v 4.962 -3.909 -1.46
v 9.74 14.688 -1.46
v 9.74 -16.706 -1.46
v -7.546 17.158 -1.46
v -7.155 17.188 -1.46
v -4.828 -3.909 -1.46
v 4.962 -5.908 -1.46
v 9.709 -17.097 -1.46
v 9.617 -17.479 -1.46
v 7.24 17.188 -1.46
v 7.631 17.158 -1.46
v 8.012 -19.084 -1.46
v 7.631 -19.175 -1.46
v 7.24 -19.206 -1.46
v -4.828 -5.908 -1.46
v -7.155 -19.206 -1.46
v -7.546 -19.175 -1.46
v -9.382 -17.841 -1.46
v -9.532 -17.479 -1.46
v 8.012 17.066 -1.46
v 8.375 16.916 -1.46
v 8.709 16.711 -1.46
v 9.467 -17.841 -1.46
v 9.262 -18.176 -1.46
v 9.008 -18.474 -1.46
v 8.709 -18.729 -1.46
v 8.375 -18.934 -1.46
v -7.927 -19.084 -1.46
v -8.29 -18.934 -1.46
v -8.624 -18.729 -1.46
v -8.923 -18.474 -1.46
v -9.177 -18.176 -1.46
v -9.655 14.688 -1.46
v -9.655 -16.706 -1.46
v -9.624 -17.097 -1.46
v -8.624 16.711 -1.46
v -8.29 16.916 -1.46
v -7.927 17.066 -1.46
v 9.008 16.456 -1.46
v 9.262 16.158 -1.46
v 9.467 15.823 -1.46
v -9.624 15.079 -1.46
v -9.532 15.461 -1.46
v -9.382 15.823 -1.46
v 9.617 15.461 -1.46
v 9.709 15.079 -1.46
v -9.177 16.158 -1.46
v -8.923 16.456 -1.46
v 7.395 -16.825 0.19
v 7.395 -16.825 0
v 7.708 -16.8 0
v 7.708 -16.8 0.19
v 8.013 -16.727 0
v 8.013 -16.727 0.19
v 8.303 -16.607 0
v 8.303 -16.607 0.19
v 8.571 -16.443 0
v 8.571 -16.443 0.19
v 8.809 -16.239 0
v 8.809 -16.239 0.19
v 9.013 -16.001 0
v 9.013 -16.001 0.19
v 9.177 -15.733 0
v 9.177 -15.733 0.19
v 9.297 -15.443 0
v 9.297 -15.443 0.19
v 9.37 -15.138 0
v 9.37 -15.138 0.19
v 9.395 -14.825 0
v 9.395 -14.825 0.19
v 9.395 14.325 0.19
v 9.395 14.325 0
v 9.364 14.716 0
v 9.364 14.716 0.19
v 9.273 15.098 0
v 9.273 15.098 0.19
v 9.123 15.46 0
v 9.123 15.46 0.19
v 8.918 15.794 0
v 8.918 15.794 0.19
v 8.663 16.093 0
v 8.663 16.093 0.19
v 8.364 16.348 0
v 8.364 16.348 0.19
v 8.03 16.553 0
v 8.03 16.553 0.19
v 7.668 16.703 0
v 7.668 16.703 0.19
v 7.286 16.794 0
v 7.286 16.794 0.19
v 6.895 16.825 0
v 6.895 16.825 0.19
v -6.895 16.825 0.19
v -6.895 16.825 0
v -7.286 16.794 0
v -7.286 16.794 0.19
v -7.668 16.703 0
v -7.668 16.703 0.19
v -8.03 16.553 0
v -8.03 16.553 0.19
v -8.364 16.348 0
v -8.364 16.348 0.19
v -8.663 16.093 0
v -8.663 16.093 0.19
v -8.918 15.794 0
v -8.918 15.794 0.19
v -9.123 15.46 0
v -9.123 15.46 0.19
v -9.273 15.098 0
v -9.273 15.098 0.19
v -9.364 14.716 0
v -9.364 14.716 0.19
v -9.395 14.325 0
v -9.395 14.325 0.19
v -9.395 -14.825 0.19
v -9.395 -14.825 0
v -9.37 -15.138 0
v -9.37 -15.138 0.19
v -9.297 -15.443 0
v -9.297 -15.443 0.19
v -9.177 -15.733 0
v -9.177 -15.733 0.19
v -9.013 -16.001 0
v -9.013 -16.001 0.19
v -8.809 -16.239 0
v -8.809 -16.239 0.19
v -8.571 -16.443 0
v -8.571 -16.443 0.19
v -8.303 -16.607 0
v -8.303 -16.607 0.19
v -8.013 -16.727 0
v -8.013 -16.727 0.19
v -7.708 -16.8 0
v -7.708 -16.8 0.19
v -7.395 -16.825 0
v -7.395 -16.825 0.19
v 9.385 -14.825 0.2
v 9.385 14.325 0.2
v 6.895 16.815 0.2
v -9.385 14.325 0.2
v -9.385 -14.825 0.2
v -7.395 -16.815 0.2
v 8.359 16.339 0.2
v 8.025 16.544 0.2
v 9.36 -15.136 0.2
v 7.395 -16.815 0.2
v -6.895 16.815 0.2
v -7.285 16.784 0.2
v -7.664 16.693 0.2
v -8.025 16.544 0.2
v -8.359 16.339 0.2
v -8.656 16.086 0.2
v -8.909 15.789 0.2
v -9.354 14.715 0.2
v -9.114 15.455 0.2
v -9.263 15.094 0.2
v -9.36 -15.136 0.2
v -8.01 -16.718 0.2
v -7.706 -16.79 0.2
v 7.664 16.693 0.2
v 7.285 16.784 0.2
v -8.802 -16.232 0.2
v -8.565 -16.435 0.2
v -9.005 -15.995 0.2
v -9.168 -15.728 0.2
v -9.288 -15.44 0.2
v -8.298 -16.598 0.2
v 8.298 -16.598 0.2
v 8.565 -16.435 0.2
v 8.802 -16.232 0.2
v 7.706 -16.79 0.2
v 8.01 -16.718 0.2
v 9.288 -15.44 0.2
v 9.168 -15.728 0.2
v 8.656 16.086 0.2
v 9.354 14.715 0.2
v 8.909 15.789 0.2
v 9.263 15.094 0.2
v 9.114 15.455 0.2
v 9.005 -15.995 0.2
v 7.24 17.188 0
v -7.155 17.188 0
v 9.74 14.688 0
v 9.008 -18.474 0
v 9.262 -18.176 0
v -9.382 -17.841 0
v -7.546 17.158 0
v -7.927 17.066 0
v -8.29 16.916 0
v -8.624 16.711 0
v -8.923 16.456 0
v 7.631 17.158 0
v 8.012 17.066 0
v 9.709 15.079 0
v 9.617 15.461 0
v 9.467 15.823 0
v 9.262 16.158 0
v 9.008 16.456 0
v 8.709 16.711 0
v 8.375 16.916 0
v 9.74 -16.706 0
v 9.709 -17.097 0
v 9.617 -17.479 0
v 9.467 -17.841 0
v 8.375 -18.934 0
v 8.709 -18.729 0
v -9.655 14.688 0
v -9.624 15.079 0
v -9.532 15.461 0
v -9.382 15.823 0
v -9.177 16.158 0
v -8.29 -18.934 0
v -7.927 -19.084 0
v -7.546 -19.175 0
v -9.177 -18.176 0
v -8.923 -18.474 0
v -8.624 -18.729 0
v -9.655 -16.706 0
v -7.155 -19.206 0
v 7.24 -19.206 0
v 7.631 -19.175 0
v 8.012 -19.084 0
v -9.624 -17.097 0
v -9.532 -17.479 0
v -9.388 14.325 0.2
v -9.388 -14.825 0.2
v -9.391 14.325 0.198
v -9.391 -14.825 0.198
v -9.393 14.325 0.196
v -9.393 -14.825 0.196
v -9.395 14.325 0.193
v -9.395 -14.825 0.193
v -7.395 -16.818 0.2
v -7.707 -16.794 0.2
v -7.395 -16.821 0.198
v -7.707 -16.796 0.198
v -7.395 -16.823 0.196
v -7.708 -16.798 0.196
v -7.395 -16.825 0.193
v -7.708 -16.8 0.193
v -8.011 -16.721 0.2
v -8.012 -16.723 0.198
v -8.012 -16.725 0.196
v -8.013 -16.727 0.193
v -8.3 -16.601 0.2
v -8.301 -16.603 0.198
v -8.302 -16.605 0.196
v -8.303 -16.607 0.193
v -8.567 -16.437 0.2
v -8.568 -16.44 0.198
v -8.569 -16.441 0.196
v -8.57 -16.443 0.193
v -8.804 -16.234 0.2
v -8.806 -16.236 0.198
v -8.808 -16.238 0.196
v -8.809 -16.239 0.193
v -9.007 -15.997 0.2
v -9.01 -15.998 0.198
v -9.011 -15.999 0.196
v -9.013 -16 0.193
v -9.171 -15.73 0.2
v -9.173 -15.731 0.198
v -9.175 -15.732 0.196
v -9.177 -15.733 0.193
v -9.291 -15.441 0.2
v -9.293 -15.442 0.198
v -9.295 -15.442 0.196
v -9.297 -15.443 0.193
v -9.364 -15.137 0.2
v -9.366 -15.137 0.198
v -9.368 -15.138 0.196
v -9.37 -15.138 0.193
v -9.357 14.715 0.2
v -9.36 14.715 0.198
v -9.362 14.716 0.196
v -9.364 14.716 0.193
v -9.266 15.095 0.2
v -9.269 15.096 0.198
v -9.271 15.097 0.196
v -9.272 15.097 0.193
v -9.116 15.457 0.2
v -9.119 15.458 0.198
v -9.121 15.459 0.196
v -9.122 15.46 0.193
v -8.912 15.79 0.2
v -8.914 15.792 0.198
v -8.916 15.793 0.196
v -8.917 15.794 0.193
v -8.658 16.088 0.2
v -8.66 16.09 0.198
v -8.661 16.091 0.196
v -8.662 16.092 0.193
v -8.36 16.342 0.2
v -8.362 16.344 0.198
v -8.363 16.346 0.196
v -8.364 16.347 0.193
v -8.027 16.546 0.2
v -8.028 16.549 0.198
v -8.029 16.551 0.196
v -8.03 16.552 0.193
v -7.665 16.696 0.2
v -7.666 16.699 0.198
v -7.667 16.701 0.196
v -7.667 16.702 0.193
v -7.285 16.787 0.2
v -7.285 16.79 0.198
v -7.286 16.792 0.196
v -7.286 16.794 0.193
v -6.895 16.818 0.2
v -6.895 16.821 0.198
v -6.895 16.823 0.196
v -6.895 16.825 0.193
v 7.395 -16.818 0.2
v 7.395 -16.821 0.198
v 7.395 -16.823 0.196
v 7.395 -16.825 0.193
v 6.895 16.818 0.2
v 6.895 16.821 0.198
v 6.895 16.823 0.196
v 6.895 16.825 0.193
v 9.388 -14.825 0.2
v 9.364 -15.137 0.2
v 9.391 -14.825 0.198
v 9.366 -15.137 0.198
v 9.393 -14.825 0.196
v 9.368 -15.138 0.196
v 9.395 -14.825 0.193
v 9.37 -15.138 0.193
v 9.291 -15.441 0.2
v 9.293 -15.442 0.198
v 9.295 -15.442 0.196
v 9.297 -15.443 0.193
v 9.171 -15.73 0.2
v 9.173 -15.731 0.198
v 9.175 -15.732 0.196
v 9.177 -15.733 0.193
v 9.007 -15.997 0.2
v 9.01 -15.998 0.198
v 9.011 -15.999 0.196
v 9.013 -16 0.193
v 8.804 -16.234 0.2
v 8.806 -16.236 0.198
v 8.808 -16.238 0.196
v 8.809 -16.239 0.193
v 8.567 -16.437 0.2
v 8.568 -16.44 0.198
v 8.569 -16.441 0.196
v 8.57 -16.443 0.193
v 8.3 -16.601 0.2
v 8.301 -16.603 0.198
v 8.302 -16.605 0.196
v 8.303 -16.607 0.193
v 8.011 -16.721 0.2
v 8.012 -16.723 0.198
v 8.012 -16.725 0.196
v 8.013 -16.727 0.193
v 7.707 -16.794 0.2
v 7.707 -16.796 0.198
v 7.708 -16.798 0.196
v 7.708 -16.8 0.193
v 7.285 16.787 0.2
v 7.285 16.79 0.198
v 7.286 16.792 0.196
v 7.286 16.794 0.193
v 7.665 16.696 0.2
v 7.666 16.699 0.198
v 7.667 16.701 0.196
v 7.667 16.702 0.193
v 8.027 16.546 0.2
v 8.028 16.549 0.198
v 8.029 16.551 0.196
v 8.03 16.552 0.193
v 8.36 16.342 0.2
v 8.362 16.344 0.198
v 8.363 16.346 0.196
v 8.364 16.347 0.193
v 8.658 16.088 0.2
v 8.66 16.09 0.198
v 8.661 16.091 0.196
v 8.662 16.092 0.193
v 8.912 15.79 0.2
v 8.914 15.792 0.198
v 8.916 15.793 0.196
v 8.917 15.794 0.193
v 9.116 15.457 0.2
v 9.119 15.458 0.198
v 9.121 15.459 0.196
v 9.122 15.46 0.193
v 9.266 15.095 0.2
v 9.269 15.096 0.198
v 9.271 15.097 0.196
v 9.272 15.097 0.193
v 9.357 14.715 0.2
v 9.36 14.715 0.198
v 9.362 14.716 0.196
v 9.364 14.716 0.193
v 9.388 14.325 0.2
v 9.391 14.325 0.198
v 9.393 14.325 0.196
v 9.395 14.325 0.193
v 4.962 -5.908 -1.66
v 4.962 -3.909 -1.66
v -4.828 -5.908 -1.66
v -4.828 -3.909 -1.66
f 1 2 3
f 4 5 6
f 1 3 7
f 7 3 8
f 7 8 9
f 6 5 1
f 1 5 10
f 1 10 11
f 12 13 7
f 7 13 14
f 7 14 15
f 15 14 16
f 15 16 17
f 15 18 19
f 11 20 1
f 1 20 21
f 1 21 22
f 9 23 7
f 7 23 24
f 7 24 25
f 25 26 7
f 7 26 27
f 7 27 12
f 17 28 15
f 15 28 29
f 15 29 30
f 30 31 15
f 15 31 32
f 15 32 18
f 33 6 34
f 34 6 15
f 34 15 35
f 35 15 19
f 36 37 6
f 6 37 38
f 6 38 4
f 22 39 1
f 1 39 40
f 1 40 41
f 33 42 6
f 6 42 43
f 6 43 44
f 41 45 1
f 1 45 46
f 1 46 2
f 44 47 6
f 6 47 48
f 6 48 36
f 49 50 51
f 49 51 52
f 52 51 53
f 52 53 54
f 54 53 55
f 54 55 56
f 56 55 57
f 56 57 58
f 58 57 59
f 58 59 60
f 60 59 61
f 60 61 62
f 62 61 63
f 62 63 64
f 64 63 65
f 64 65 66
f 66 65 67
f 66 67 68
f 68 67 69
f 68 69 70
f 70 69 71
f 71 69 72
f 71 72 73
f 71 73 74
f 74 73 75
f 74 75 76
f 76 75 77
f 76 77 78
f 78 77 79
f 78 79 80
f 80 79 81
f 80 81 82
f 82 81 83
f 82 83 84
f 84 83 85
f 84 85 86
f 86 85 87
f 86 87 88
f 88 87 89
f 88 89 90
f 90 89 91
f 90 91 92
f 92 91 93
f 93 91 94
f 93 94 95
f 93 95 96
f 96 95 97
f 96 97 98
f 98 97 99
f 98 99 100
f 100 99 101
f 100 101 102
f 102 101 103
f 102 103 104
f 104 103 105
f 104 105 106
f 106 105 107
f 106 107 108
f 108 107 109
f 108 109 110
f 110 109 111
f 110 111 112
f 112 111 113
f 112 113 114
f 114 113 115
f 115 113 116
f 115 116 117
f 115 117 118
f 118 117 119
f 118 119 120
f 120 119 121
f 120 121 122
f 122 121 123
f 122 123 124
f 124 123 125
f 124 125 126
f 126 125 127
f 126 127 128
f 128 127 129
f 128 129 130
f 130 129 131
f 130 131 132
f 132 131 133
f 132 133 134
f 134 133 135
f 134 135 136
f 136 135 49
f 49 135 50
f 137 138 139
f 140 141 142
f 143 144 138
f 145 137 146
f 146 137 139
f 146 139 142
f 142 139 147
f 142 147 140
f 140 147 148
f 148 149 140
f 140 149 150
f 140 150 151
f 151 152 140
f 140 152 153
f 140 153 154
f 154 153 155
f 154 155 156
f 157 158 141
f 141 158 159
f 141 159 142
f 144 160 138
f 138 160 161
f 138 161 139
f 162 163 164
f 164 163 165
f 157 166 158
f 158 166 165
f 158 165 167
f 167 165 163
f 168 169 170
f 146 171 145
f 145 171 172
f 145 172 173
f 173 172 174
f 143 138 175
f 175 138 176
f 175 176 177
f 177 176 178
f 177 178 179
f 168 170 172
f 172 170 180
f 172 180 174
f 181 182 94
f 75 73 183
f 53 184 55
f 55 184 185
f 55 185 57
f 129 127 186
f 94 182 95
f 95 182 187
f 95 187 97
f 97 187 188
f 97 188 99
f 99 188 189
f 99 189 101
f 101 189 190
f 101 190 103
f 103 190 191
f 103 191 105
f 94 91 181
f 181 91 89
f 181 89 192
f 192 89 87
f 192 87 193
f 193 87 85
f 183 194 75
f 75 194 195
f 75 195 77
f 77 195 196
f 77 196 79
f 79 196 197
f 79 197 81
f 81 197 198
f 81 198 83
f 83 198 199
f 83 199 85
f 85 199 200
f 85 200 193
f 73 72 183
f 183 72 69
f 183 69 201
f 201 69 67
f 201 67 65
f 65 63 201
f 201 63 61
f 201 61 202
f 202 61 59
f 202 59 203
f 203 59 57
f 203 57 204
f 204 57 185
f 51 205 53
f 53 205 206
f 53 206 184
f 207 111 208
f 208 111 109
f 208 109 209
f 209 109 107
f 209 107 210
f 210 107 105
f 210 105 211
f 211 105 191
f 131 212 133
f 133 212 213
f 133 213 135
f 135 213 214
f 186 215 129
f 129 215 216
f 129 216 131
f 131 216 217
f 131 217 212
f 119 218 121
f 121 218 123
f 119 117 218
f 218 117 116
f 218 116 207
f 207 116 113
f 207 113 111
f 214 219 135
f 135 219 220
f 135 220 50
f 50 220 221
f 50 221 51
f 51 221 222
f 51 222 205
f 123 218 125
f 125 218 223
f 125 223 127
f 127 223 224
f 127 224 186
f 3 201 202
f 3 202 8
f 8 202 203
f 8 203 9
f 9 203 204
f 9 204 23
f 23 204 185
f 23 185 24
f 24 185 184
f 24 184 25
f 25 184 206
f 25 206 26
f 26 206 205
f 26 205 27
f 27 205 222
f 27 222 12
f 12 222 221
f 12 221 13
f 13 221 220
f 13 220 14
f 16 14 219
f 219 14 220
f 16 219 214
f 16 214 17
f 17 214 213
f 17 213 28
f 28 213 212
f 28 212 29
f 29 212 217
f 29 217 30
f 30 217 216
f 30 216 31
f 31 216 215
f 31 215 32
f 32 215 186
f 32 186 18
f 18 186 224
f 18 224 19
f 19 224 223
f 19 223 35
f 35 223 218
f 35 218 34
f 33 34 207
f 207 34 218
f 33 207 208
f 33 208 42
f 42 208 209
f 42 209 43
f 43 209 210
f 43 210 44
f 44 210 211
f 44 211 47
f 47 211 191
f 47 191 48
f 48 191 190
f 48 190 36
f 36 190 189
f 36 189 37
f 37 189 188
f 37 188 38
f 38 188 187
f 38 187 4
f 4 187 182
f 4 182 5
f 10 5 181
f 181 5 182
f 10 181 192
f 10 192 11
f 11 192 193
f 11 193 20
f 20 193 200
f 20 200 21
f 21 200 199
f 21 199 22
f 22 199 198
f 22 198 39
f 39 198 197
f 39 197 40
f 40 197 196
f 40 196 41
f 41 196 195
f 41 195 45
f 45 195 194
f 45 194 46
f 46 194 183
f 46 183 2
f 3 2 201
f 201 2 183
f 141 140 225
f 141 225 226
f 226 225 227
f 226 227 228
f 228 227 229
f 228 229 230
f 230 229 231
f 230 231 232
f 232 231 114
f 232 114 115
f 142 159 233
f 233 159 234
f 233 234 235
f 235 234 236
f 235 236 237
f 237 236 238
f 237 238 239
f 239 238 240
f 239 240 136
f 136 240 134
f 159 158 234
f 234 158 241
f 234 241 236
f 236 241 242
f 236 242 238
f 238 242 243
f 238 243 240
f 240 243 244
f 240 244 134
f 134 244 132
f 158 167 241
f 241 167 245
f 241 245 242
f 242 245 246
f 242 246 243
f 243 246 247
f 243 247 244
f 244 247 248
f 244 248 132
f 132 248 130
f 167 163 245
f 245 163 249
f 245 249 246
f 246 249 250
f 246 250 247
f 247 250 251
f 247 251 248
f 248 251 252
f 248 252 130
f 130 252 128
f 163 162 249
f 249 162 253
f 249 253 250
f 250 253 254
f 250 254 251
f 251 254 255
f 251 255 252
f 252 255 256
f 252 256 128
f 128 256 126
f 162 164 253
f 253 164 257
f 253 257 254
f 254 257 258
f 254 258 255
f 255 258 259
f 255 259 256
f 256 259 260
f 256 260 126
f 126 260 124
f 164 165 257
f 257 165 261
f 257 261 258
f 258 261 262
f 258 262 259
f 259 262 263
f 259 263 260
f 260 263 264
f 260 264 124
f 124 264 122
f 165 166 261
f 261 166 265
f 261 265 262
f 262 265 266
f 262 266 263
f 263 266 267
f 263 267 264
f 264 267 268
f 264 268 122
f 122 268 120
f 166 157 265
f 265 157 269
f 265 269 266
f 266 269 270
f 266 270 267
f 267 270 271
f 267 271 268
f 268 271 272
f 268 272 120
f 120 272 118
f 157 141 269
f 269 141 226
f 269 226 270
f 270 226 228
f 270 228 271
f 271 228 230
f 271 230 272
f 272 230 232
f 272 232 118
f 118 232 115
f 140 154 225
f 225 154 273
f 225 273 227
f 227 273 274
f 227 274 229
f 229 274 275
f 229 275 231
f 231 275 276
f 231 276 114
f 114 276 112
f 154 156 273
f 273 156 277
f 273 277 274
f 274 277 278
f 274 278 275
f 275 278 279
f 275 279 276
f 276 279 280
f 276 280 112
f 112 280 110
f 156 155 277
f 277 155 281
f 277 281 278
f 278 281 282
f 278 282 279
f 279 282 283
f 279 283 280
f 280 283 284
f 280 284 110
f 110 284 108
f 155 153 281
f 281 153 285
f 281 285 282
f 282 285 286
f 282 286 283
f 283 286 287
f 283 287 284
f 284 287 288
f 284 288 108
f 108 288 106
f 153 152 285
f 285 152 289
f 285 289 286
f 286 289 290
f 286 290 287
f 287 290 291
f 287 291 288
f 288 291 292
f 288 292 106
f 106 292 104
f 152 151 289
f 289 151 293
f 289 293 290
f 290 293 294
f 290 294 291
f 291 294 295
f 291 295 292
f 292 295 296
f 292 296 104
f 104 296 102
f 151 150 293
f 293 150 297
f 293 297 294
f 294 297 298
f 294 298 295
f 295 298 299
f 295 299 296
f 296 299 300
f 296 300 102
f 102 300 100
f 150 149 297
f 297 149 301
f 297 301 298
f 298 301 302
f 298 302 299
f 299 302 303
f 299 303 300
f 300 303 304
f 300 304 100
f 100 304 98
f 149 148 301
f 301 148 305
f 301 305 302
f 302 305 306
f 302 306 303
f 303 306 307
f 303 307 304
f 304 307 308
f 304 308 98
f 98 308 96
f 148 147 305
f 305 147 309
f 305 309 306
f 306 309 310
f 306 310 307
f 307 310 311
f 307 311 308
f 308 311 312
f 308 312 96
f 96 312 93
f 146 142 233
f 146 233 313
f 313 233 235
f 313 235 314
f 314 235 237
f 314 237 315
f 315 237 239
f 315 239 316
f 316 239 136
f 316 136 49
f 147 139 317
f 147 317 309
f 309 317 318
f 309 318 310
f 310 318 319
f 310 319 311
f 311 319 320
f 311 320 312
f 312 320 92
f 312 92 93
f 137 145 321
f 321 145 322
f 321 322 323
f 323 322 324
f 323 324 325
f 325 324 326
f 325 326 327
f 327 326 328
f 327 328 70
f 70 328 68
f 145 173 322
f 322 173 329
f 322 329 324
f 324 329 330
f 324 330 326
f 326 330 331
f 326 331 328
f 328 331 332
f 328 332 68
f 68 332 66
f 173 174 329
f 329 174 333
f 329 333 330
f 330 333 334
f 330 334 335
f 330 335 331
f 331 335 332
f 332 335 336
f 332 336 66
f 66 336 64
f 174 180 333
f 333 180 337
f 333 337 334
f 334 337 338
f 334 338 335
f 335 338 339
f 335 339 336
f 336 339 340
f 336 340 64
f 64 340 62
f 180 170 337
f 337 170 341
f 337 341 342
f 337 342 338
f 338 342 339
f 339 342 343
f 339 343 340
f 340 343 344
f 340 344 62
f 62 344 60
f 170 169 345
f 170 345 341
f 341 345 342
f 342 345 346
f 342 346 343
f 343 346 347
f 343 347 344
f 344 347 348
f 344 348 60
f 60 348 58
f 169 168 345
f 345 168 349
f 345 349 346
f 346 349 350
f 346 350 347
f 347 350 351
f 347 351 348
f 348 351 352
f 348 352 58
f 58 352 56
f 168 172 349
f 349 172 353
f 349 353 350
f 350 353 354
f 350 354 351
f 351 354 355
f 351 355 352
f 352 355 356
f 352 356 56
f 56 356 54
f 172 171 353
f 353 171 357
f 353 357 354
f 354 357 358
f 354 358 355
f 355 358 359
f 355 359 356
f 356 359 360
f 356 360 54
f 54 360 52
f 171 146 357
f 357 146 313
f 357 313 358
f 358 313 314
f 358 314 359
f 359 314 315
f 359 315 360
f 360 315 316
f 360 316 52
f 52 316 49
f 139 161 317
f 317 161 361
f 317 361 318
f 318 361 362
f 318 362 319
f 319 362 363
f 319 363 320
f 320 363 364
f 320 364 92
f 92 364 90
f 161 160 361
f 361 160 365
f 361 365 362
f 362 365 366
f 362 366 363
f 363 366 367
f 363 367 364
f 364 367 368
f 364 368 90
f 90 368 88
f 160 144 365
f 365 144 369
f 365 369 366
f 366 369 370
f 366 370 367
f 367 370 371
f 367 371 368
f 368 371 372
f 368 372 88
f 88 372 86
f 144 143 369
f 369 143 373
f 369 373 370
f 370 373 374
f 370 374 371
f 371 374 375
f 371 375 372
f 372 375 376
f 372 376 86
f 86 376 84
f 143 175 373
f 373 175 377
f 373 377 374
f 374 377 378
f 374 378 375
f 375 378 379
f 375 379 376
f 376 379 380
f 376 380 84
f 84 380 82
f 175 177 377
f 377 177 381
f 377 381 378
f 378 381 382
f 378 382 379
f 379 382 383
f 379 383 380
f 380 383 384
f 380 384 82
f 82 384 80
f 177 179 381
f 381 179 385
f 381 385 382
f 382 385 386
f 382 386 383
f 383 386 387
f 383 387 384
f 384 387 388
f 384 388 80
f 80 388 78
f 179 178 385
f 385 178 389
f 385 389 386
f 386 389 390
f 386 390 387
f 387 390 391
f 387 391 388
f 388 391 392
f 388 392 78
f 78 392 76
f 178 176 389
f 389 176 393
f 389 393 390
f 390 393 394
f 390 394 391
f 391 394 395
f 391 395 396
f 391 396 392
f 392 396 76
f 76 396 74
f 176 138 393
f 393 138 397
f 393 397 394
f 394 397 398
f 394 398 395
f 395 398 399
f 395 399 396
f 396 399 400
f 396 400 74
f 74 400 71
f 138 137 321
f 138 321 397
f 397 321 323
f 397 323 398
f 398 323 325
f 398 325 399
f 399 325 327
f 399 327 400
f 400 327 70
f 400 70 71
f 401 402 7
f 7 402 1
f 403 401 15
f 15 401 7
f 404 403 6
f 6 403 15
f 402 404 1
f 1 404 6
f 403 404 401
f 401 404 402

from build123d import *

# Parameters (mm, degrees)
BOSS_EXTRU_1_DEPTH = 1.46
BOSS_EXTRU_2_DEPTH = 0.15
BOSS_EXTRU_3_DEPTH = 0.2
CONG_1_R           = 0.01
CONTACTS_W         = 9.78910699
CONTACTS_H         = 1.999751064
BOSS_EXTRU_4_DEPTH = 0.2


with BuildPart() as part:
    # bordexterne → Boss.-Extru.1 (new body)
    with BuildSketch(Plane.XY):
        with BuildLine():
            Line((-7.154775328, -19.206177595), (7.239809861, -19.206177595))
            ThreePointArc((7.239809861, -19.206177595), (9.007576814, -18.473944548), (9.739809861, -16.706177595))
            Line((9.739809861, -16.706177595), (9.739809861, 14.688353392))
            ThreePointArc((9.739809861, 14.688353392), (9.007576814, 16.456120345), (7.239809861, 17.188353392))
            Line((7.239809861, 17.188353392), (-7.154775328, 17.188353392))
            ThreePointArc((-7.154775328, 17.188353392), (-8.922542281, 16.456120345), (-9.654775328, 14.688353392))
            Line((-9.654775328, 14.688353392), (-9.654775328, -16.706177595))
            ThreePointArc((-9.654775328, -16.706177595), (-8.922542281, -18.473944548), (-7.154775328, -19.206177595))
        make_face()
    extrude(amount=-BOSS_EXTRU_1_DEPTH)

    # surfaceutile → Boss.-Extru.2 (add)
    with BuildSketch(Plane.XY):
        with BuildLine():
            Line((-6.695, -16.175), (6.695, -16.175))
            ThreePointArc((6.695, -16.175), (8.109213562, -15.589213562), (8.695, -14.175))
            Line((8.695, -14.175), (8.695, 14.175))
            ThreePointArc((8.695, 14.175), (8.109213562, 15.589213562), (6.695, 16.175))
            Line((6.695, 16.175), (-6.695, 16.175))
            ThreePointArc((-6.695, 16.175), (-8.109213562, 15.589213562), (-8.695, 14.175))
            Line((-8.695, 14.175), (-8.695, -14.175))
            ThreePointArc((-8.695, -14.175), (-8.109213562, -15.589213562), (-6.695, -16.175))
        make_face()
    extrude(amount=BOSS_EXTRU_2_DEPTH)

    # bord2 → Boss.-Extru.3 (add)
    with BuildSketch(Plane.XY):
        with BuildLine():
            Line((-7.395, -16.825), (7.395, -16.825))
            ThreePointArc((7.395, -16.825), (8.809213562, -16.239213562), (9.395, -14.825))
            Line((9.395, -14.825), (9.395, 14.325))
            ThreePointArc((9.395, 14.325), (8.662766953, 16.092766953), (6.895, 16.825))
            Line((6.895, 16.825), (-6.895, 16.825))
            ThreePointArc((-6.895, 16.825), (-8.662766953, 16.092766953), (-9.395, 14.325))
            Line((-9.395, 14.325), (-9.395, -14.825))
            ThreePointArc((-9.395, -14.825), (-8.809213562, -16.239213562), (-7.395, -16.825))
        make_face()
    extrude(amount=BOSS_EXTRU_3_DEPTH)

    # Congé1
    cong_1_edges = [part.edges().sort_by_distance(p)[0] for p in [
        (8.809213562, -16.239213562, 0.2),
        (9.395, -0.25, 0.2),
        (8.662766953, 16.092766953, 0.2),
        (0, 16.825, 0.2),
        (-8.662766953, 16.092766953, 0.2),
        (-9.395, -0.25, 0.2),
        (-8.809213562, -16.239213562, 0.2),
        (0, -16.825, 0.2),
    ]]
    fillet(cong_1_edges, radius=CONG_1_R)

    # contacts → Boss.-Extru.4 (add)
    with BuildSketch(Plane(origin=(0, 0, -1.46), x_dir=(-1, 0, 0), z_dir=(0, 0, -1))):
        with Locations((-0.066948969, -4.908420558)):
            Rectangle(CONTACTS_W, CONTACTS_H)
    extrude(amount=BOSS_EXTRU_4_DEPTH)


solid = part.part
